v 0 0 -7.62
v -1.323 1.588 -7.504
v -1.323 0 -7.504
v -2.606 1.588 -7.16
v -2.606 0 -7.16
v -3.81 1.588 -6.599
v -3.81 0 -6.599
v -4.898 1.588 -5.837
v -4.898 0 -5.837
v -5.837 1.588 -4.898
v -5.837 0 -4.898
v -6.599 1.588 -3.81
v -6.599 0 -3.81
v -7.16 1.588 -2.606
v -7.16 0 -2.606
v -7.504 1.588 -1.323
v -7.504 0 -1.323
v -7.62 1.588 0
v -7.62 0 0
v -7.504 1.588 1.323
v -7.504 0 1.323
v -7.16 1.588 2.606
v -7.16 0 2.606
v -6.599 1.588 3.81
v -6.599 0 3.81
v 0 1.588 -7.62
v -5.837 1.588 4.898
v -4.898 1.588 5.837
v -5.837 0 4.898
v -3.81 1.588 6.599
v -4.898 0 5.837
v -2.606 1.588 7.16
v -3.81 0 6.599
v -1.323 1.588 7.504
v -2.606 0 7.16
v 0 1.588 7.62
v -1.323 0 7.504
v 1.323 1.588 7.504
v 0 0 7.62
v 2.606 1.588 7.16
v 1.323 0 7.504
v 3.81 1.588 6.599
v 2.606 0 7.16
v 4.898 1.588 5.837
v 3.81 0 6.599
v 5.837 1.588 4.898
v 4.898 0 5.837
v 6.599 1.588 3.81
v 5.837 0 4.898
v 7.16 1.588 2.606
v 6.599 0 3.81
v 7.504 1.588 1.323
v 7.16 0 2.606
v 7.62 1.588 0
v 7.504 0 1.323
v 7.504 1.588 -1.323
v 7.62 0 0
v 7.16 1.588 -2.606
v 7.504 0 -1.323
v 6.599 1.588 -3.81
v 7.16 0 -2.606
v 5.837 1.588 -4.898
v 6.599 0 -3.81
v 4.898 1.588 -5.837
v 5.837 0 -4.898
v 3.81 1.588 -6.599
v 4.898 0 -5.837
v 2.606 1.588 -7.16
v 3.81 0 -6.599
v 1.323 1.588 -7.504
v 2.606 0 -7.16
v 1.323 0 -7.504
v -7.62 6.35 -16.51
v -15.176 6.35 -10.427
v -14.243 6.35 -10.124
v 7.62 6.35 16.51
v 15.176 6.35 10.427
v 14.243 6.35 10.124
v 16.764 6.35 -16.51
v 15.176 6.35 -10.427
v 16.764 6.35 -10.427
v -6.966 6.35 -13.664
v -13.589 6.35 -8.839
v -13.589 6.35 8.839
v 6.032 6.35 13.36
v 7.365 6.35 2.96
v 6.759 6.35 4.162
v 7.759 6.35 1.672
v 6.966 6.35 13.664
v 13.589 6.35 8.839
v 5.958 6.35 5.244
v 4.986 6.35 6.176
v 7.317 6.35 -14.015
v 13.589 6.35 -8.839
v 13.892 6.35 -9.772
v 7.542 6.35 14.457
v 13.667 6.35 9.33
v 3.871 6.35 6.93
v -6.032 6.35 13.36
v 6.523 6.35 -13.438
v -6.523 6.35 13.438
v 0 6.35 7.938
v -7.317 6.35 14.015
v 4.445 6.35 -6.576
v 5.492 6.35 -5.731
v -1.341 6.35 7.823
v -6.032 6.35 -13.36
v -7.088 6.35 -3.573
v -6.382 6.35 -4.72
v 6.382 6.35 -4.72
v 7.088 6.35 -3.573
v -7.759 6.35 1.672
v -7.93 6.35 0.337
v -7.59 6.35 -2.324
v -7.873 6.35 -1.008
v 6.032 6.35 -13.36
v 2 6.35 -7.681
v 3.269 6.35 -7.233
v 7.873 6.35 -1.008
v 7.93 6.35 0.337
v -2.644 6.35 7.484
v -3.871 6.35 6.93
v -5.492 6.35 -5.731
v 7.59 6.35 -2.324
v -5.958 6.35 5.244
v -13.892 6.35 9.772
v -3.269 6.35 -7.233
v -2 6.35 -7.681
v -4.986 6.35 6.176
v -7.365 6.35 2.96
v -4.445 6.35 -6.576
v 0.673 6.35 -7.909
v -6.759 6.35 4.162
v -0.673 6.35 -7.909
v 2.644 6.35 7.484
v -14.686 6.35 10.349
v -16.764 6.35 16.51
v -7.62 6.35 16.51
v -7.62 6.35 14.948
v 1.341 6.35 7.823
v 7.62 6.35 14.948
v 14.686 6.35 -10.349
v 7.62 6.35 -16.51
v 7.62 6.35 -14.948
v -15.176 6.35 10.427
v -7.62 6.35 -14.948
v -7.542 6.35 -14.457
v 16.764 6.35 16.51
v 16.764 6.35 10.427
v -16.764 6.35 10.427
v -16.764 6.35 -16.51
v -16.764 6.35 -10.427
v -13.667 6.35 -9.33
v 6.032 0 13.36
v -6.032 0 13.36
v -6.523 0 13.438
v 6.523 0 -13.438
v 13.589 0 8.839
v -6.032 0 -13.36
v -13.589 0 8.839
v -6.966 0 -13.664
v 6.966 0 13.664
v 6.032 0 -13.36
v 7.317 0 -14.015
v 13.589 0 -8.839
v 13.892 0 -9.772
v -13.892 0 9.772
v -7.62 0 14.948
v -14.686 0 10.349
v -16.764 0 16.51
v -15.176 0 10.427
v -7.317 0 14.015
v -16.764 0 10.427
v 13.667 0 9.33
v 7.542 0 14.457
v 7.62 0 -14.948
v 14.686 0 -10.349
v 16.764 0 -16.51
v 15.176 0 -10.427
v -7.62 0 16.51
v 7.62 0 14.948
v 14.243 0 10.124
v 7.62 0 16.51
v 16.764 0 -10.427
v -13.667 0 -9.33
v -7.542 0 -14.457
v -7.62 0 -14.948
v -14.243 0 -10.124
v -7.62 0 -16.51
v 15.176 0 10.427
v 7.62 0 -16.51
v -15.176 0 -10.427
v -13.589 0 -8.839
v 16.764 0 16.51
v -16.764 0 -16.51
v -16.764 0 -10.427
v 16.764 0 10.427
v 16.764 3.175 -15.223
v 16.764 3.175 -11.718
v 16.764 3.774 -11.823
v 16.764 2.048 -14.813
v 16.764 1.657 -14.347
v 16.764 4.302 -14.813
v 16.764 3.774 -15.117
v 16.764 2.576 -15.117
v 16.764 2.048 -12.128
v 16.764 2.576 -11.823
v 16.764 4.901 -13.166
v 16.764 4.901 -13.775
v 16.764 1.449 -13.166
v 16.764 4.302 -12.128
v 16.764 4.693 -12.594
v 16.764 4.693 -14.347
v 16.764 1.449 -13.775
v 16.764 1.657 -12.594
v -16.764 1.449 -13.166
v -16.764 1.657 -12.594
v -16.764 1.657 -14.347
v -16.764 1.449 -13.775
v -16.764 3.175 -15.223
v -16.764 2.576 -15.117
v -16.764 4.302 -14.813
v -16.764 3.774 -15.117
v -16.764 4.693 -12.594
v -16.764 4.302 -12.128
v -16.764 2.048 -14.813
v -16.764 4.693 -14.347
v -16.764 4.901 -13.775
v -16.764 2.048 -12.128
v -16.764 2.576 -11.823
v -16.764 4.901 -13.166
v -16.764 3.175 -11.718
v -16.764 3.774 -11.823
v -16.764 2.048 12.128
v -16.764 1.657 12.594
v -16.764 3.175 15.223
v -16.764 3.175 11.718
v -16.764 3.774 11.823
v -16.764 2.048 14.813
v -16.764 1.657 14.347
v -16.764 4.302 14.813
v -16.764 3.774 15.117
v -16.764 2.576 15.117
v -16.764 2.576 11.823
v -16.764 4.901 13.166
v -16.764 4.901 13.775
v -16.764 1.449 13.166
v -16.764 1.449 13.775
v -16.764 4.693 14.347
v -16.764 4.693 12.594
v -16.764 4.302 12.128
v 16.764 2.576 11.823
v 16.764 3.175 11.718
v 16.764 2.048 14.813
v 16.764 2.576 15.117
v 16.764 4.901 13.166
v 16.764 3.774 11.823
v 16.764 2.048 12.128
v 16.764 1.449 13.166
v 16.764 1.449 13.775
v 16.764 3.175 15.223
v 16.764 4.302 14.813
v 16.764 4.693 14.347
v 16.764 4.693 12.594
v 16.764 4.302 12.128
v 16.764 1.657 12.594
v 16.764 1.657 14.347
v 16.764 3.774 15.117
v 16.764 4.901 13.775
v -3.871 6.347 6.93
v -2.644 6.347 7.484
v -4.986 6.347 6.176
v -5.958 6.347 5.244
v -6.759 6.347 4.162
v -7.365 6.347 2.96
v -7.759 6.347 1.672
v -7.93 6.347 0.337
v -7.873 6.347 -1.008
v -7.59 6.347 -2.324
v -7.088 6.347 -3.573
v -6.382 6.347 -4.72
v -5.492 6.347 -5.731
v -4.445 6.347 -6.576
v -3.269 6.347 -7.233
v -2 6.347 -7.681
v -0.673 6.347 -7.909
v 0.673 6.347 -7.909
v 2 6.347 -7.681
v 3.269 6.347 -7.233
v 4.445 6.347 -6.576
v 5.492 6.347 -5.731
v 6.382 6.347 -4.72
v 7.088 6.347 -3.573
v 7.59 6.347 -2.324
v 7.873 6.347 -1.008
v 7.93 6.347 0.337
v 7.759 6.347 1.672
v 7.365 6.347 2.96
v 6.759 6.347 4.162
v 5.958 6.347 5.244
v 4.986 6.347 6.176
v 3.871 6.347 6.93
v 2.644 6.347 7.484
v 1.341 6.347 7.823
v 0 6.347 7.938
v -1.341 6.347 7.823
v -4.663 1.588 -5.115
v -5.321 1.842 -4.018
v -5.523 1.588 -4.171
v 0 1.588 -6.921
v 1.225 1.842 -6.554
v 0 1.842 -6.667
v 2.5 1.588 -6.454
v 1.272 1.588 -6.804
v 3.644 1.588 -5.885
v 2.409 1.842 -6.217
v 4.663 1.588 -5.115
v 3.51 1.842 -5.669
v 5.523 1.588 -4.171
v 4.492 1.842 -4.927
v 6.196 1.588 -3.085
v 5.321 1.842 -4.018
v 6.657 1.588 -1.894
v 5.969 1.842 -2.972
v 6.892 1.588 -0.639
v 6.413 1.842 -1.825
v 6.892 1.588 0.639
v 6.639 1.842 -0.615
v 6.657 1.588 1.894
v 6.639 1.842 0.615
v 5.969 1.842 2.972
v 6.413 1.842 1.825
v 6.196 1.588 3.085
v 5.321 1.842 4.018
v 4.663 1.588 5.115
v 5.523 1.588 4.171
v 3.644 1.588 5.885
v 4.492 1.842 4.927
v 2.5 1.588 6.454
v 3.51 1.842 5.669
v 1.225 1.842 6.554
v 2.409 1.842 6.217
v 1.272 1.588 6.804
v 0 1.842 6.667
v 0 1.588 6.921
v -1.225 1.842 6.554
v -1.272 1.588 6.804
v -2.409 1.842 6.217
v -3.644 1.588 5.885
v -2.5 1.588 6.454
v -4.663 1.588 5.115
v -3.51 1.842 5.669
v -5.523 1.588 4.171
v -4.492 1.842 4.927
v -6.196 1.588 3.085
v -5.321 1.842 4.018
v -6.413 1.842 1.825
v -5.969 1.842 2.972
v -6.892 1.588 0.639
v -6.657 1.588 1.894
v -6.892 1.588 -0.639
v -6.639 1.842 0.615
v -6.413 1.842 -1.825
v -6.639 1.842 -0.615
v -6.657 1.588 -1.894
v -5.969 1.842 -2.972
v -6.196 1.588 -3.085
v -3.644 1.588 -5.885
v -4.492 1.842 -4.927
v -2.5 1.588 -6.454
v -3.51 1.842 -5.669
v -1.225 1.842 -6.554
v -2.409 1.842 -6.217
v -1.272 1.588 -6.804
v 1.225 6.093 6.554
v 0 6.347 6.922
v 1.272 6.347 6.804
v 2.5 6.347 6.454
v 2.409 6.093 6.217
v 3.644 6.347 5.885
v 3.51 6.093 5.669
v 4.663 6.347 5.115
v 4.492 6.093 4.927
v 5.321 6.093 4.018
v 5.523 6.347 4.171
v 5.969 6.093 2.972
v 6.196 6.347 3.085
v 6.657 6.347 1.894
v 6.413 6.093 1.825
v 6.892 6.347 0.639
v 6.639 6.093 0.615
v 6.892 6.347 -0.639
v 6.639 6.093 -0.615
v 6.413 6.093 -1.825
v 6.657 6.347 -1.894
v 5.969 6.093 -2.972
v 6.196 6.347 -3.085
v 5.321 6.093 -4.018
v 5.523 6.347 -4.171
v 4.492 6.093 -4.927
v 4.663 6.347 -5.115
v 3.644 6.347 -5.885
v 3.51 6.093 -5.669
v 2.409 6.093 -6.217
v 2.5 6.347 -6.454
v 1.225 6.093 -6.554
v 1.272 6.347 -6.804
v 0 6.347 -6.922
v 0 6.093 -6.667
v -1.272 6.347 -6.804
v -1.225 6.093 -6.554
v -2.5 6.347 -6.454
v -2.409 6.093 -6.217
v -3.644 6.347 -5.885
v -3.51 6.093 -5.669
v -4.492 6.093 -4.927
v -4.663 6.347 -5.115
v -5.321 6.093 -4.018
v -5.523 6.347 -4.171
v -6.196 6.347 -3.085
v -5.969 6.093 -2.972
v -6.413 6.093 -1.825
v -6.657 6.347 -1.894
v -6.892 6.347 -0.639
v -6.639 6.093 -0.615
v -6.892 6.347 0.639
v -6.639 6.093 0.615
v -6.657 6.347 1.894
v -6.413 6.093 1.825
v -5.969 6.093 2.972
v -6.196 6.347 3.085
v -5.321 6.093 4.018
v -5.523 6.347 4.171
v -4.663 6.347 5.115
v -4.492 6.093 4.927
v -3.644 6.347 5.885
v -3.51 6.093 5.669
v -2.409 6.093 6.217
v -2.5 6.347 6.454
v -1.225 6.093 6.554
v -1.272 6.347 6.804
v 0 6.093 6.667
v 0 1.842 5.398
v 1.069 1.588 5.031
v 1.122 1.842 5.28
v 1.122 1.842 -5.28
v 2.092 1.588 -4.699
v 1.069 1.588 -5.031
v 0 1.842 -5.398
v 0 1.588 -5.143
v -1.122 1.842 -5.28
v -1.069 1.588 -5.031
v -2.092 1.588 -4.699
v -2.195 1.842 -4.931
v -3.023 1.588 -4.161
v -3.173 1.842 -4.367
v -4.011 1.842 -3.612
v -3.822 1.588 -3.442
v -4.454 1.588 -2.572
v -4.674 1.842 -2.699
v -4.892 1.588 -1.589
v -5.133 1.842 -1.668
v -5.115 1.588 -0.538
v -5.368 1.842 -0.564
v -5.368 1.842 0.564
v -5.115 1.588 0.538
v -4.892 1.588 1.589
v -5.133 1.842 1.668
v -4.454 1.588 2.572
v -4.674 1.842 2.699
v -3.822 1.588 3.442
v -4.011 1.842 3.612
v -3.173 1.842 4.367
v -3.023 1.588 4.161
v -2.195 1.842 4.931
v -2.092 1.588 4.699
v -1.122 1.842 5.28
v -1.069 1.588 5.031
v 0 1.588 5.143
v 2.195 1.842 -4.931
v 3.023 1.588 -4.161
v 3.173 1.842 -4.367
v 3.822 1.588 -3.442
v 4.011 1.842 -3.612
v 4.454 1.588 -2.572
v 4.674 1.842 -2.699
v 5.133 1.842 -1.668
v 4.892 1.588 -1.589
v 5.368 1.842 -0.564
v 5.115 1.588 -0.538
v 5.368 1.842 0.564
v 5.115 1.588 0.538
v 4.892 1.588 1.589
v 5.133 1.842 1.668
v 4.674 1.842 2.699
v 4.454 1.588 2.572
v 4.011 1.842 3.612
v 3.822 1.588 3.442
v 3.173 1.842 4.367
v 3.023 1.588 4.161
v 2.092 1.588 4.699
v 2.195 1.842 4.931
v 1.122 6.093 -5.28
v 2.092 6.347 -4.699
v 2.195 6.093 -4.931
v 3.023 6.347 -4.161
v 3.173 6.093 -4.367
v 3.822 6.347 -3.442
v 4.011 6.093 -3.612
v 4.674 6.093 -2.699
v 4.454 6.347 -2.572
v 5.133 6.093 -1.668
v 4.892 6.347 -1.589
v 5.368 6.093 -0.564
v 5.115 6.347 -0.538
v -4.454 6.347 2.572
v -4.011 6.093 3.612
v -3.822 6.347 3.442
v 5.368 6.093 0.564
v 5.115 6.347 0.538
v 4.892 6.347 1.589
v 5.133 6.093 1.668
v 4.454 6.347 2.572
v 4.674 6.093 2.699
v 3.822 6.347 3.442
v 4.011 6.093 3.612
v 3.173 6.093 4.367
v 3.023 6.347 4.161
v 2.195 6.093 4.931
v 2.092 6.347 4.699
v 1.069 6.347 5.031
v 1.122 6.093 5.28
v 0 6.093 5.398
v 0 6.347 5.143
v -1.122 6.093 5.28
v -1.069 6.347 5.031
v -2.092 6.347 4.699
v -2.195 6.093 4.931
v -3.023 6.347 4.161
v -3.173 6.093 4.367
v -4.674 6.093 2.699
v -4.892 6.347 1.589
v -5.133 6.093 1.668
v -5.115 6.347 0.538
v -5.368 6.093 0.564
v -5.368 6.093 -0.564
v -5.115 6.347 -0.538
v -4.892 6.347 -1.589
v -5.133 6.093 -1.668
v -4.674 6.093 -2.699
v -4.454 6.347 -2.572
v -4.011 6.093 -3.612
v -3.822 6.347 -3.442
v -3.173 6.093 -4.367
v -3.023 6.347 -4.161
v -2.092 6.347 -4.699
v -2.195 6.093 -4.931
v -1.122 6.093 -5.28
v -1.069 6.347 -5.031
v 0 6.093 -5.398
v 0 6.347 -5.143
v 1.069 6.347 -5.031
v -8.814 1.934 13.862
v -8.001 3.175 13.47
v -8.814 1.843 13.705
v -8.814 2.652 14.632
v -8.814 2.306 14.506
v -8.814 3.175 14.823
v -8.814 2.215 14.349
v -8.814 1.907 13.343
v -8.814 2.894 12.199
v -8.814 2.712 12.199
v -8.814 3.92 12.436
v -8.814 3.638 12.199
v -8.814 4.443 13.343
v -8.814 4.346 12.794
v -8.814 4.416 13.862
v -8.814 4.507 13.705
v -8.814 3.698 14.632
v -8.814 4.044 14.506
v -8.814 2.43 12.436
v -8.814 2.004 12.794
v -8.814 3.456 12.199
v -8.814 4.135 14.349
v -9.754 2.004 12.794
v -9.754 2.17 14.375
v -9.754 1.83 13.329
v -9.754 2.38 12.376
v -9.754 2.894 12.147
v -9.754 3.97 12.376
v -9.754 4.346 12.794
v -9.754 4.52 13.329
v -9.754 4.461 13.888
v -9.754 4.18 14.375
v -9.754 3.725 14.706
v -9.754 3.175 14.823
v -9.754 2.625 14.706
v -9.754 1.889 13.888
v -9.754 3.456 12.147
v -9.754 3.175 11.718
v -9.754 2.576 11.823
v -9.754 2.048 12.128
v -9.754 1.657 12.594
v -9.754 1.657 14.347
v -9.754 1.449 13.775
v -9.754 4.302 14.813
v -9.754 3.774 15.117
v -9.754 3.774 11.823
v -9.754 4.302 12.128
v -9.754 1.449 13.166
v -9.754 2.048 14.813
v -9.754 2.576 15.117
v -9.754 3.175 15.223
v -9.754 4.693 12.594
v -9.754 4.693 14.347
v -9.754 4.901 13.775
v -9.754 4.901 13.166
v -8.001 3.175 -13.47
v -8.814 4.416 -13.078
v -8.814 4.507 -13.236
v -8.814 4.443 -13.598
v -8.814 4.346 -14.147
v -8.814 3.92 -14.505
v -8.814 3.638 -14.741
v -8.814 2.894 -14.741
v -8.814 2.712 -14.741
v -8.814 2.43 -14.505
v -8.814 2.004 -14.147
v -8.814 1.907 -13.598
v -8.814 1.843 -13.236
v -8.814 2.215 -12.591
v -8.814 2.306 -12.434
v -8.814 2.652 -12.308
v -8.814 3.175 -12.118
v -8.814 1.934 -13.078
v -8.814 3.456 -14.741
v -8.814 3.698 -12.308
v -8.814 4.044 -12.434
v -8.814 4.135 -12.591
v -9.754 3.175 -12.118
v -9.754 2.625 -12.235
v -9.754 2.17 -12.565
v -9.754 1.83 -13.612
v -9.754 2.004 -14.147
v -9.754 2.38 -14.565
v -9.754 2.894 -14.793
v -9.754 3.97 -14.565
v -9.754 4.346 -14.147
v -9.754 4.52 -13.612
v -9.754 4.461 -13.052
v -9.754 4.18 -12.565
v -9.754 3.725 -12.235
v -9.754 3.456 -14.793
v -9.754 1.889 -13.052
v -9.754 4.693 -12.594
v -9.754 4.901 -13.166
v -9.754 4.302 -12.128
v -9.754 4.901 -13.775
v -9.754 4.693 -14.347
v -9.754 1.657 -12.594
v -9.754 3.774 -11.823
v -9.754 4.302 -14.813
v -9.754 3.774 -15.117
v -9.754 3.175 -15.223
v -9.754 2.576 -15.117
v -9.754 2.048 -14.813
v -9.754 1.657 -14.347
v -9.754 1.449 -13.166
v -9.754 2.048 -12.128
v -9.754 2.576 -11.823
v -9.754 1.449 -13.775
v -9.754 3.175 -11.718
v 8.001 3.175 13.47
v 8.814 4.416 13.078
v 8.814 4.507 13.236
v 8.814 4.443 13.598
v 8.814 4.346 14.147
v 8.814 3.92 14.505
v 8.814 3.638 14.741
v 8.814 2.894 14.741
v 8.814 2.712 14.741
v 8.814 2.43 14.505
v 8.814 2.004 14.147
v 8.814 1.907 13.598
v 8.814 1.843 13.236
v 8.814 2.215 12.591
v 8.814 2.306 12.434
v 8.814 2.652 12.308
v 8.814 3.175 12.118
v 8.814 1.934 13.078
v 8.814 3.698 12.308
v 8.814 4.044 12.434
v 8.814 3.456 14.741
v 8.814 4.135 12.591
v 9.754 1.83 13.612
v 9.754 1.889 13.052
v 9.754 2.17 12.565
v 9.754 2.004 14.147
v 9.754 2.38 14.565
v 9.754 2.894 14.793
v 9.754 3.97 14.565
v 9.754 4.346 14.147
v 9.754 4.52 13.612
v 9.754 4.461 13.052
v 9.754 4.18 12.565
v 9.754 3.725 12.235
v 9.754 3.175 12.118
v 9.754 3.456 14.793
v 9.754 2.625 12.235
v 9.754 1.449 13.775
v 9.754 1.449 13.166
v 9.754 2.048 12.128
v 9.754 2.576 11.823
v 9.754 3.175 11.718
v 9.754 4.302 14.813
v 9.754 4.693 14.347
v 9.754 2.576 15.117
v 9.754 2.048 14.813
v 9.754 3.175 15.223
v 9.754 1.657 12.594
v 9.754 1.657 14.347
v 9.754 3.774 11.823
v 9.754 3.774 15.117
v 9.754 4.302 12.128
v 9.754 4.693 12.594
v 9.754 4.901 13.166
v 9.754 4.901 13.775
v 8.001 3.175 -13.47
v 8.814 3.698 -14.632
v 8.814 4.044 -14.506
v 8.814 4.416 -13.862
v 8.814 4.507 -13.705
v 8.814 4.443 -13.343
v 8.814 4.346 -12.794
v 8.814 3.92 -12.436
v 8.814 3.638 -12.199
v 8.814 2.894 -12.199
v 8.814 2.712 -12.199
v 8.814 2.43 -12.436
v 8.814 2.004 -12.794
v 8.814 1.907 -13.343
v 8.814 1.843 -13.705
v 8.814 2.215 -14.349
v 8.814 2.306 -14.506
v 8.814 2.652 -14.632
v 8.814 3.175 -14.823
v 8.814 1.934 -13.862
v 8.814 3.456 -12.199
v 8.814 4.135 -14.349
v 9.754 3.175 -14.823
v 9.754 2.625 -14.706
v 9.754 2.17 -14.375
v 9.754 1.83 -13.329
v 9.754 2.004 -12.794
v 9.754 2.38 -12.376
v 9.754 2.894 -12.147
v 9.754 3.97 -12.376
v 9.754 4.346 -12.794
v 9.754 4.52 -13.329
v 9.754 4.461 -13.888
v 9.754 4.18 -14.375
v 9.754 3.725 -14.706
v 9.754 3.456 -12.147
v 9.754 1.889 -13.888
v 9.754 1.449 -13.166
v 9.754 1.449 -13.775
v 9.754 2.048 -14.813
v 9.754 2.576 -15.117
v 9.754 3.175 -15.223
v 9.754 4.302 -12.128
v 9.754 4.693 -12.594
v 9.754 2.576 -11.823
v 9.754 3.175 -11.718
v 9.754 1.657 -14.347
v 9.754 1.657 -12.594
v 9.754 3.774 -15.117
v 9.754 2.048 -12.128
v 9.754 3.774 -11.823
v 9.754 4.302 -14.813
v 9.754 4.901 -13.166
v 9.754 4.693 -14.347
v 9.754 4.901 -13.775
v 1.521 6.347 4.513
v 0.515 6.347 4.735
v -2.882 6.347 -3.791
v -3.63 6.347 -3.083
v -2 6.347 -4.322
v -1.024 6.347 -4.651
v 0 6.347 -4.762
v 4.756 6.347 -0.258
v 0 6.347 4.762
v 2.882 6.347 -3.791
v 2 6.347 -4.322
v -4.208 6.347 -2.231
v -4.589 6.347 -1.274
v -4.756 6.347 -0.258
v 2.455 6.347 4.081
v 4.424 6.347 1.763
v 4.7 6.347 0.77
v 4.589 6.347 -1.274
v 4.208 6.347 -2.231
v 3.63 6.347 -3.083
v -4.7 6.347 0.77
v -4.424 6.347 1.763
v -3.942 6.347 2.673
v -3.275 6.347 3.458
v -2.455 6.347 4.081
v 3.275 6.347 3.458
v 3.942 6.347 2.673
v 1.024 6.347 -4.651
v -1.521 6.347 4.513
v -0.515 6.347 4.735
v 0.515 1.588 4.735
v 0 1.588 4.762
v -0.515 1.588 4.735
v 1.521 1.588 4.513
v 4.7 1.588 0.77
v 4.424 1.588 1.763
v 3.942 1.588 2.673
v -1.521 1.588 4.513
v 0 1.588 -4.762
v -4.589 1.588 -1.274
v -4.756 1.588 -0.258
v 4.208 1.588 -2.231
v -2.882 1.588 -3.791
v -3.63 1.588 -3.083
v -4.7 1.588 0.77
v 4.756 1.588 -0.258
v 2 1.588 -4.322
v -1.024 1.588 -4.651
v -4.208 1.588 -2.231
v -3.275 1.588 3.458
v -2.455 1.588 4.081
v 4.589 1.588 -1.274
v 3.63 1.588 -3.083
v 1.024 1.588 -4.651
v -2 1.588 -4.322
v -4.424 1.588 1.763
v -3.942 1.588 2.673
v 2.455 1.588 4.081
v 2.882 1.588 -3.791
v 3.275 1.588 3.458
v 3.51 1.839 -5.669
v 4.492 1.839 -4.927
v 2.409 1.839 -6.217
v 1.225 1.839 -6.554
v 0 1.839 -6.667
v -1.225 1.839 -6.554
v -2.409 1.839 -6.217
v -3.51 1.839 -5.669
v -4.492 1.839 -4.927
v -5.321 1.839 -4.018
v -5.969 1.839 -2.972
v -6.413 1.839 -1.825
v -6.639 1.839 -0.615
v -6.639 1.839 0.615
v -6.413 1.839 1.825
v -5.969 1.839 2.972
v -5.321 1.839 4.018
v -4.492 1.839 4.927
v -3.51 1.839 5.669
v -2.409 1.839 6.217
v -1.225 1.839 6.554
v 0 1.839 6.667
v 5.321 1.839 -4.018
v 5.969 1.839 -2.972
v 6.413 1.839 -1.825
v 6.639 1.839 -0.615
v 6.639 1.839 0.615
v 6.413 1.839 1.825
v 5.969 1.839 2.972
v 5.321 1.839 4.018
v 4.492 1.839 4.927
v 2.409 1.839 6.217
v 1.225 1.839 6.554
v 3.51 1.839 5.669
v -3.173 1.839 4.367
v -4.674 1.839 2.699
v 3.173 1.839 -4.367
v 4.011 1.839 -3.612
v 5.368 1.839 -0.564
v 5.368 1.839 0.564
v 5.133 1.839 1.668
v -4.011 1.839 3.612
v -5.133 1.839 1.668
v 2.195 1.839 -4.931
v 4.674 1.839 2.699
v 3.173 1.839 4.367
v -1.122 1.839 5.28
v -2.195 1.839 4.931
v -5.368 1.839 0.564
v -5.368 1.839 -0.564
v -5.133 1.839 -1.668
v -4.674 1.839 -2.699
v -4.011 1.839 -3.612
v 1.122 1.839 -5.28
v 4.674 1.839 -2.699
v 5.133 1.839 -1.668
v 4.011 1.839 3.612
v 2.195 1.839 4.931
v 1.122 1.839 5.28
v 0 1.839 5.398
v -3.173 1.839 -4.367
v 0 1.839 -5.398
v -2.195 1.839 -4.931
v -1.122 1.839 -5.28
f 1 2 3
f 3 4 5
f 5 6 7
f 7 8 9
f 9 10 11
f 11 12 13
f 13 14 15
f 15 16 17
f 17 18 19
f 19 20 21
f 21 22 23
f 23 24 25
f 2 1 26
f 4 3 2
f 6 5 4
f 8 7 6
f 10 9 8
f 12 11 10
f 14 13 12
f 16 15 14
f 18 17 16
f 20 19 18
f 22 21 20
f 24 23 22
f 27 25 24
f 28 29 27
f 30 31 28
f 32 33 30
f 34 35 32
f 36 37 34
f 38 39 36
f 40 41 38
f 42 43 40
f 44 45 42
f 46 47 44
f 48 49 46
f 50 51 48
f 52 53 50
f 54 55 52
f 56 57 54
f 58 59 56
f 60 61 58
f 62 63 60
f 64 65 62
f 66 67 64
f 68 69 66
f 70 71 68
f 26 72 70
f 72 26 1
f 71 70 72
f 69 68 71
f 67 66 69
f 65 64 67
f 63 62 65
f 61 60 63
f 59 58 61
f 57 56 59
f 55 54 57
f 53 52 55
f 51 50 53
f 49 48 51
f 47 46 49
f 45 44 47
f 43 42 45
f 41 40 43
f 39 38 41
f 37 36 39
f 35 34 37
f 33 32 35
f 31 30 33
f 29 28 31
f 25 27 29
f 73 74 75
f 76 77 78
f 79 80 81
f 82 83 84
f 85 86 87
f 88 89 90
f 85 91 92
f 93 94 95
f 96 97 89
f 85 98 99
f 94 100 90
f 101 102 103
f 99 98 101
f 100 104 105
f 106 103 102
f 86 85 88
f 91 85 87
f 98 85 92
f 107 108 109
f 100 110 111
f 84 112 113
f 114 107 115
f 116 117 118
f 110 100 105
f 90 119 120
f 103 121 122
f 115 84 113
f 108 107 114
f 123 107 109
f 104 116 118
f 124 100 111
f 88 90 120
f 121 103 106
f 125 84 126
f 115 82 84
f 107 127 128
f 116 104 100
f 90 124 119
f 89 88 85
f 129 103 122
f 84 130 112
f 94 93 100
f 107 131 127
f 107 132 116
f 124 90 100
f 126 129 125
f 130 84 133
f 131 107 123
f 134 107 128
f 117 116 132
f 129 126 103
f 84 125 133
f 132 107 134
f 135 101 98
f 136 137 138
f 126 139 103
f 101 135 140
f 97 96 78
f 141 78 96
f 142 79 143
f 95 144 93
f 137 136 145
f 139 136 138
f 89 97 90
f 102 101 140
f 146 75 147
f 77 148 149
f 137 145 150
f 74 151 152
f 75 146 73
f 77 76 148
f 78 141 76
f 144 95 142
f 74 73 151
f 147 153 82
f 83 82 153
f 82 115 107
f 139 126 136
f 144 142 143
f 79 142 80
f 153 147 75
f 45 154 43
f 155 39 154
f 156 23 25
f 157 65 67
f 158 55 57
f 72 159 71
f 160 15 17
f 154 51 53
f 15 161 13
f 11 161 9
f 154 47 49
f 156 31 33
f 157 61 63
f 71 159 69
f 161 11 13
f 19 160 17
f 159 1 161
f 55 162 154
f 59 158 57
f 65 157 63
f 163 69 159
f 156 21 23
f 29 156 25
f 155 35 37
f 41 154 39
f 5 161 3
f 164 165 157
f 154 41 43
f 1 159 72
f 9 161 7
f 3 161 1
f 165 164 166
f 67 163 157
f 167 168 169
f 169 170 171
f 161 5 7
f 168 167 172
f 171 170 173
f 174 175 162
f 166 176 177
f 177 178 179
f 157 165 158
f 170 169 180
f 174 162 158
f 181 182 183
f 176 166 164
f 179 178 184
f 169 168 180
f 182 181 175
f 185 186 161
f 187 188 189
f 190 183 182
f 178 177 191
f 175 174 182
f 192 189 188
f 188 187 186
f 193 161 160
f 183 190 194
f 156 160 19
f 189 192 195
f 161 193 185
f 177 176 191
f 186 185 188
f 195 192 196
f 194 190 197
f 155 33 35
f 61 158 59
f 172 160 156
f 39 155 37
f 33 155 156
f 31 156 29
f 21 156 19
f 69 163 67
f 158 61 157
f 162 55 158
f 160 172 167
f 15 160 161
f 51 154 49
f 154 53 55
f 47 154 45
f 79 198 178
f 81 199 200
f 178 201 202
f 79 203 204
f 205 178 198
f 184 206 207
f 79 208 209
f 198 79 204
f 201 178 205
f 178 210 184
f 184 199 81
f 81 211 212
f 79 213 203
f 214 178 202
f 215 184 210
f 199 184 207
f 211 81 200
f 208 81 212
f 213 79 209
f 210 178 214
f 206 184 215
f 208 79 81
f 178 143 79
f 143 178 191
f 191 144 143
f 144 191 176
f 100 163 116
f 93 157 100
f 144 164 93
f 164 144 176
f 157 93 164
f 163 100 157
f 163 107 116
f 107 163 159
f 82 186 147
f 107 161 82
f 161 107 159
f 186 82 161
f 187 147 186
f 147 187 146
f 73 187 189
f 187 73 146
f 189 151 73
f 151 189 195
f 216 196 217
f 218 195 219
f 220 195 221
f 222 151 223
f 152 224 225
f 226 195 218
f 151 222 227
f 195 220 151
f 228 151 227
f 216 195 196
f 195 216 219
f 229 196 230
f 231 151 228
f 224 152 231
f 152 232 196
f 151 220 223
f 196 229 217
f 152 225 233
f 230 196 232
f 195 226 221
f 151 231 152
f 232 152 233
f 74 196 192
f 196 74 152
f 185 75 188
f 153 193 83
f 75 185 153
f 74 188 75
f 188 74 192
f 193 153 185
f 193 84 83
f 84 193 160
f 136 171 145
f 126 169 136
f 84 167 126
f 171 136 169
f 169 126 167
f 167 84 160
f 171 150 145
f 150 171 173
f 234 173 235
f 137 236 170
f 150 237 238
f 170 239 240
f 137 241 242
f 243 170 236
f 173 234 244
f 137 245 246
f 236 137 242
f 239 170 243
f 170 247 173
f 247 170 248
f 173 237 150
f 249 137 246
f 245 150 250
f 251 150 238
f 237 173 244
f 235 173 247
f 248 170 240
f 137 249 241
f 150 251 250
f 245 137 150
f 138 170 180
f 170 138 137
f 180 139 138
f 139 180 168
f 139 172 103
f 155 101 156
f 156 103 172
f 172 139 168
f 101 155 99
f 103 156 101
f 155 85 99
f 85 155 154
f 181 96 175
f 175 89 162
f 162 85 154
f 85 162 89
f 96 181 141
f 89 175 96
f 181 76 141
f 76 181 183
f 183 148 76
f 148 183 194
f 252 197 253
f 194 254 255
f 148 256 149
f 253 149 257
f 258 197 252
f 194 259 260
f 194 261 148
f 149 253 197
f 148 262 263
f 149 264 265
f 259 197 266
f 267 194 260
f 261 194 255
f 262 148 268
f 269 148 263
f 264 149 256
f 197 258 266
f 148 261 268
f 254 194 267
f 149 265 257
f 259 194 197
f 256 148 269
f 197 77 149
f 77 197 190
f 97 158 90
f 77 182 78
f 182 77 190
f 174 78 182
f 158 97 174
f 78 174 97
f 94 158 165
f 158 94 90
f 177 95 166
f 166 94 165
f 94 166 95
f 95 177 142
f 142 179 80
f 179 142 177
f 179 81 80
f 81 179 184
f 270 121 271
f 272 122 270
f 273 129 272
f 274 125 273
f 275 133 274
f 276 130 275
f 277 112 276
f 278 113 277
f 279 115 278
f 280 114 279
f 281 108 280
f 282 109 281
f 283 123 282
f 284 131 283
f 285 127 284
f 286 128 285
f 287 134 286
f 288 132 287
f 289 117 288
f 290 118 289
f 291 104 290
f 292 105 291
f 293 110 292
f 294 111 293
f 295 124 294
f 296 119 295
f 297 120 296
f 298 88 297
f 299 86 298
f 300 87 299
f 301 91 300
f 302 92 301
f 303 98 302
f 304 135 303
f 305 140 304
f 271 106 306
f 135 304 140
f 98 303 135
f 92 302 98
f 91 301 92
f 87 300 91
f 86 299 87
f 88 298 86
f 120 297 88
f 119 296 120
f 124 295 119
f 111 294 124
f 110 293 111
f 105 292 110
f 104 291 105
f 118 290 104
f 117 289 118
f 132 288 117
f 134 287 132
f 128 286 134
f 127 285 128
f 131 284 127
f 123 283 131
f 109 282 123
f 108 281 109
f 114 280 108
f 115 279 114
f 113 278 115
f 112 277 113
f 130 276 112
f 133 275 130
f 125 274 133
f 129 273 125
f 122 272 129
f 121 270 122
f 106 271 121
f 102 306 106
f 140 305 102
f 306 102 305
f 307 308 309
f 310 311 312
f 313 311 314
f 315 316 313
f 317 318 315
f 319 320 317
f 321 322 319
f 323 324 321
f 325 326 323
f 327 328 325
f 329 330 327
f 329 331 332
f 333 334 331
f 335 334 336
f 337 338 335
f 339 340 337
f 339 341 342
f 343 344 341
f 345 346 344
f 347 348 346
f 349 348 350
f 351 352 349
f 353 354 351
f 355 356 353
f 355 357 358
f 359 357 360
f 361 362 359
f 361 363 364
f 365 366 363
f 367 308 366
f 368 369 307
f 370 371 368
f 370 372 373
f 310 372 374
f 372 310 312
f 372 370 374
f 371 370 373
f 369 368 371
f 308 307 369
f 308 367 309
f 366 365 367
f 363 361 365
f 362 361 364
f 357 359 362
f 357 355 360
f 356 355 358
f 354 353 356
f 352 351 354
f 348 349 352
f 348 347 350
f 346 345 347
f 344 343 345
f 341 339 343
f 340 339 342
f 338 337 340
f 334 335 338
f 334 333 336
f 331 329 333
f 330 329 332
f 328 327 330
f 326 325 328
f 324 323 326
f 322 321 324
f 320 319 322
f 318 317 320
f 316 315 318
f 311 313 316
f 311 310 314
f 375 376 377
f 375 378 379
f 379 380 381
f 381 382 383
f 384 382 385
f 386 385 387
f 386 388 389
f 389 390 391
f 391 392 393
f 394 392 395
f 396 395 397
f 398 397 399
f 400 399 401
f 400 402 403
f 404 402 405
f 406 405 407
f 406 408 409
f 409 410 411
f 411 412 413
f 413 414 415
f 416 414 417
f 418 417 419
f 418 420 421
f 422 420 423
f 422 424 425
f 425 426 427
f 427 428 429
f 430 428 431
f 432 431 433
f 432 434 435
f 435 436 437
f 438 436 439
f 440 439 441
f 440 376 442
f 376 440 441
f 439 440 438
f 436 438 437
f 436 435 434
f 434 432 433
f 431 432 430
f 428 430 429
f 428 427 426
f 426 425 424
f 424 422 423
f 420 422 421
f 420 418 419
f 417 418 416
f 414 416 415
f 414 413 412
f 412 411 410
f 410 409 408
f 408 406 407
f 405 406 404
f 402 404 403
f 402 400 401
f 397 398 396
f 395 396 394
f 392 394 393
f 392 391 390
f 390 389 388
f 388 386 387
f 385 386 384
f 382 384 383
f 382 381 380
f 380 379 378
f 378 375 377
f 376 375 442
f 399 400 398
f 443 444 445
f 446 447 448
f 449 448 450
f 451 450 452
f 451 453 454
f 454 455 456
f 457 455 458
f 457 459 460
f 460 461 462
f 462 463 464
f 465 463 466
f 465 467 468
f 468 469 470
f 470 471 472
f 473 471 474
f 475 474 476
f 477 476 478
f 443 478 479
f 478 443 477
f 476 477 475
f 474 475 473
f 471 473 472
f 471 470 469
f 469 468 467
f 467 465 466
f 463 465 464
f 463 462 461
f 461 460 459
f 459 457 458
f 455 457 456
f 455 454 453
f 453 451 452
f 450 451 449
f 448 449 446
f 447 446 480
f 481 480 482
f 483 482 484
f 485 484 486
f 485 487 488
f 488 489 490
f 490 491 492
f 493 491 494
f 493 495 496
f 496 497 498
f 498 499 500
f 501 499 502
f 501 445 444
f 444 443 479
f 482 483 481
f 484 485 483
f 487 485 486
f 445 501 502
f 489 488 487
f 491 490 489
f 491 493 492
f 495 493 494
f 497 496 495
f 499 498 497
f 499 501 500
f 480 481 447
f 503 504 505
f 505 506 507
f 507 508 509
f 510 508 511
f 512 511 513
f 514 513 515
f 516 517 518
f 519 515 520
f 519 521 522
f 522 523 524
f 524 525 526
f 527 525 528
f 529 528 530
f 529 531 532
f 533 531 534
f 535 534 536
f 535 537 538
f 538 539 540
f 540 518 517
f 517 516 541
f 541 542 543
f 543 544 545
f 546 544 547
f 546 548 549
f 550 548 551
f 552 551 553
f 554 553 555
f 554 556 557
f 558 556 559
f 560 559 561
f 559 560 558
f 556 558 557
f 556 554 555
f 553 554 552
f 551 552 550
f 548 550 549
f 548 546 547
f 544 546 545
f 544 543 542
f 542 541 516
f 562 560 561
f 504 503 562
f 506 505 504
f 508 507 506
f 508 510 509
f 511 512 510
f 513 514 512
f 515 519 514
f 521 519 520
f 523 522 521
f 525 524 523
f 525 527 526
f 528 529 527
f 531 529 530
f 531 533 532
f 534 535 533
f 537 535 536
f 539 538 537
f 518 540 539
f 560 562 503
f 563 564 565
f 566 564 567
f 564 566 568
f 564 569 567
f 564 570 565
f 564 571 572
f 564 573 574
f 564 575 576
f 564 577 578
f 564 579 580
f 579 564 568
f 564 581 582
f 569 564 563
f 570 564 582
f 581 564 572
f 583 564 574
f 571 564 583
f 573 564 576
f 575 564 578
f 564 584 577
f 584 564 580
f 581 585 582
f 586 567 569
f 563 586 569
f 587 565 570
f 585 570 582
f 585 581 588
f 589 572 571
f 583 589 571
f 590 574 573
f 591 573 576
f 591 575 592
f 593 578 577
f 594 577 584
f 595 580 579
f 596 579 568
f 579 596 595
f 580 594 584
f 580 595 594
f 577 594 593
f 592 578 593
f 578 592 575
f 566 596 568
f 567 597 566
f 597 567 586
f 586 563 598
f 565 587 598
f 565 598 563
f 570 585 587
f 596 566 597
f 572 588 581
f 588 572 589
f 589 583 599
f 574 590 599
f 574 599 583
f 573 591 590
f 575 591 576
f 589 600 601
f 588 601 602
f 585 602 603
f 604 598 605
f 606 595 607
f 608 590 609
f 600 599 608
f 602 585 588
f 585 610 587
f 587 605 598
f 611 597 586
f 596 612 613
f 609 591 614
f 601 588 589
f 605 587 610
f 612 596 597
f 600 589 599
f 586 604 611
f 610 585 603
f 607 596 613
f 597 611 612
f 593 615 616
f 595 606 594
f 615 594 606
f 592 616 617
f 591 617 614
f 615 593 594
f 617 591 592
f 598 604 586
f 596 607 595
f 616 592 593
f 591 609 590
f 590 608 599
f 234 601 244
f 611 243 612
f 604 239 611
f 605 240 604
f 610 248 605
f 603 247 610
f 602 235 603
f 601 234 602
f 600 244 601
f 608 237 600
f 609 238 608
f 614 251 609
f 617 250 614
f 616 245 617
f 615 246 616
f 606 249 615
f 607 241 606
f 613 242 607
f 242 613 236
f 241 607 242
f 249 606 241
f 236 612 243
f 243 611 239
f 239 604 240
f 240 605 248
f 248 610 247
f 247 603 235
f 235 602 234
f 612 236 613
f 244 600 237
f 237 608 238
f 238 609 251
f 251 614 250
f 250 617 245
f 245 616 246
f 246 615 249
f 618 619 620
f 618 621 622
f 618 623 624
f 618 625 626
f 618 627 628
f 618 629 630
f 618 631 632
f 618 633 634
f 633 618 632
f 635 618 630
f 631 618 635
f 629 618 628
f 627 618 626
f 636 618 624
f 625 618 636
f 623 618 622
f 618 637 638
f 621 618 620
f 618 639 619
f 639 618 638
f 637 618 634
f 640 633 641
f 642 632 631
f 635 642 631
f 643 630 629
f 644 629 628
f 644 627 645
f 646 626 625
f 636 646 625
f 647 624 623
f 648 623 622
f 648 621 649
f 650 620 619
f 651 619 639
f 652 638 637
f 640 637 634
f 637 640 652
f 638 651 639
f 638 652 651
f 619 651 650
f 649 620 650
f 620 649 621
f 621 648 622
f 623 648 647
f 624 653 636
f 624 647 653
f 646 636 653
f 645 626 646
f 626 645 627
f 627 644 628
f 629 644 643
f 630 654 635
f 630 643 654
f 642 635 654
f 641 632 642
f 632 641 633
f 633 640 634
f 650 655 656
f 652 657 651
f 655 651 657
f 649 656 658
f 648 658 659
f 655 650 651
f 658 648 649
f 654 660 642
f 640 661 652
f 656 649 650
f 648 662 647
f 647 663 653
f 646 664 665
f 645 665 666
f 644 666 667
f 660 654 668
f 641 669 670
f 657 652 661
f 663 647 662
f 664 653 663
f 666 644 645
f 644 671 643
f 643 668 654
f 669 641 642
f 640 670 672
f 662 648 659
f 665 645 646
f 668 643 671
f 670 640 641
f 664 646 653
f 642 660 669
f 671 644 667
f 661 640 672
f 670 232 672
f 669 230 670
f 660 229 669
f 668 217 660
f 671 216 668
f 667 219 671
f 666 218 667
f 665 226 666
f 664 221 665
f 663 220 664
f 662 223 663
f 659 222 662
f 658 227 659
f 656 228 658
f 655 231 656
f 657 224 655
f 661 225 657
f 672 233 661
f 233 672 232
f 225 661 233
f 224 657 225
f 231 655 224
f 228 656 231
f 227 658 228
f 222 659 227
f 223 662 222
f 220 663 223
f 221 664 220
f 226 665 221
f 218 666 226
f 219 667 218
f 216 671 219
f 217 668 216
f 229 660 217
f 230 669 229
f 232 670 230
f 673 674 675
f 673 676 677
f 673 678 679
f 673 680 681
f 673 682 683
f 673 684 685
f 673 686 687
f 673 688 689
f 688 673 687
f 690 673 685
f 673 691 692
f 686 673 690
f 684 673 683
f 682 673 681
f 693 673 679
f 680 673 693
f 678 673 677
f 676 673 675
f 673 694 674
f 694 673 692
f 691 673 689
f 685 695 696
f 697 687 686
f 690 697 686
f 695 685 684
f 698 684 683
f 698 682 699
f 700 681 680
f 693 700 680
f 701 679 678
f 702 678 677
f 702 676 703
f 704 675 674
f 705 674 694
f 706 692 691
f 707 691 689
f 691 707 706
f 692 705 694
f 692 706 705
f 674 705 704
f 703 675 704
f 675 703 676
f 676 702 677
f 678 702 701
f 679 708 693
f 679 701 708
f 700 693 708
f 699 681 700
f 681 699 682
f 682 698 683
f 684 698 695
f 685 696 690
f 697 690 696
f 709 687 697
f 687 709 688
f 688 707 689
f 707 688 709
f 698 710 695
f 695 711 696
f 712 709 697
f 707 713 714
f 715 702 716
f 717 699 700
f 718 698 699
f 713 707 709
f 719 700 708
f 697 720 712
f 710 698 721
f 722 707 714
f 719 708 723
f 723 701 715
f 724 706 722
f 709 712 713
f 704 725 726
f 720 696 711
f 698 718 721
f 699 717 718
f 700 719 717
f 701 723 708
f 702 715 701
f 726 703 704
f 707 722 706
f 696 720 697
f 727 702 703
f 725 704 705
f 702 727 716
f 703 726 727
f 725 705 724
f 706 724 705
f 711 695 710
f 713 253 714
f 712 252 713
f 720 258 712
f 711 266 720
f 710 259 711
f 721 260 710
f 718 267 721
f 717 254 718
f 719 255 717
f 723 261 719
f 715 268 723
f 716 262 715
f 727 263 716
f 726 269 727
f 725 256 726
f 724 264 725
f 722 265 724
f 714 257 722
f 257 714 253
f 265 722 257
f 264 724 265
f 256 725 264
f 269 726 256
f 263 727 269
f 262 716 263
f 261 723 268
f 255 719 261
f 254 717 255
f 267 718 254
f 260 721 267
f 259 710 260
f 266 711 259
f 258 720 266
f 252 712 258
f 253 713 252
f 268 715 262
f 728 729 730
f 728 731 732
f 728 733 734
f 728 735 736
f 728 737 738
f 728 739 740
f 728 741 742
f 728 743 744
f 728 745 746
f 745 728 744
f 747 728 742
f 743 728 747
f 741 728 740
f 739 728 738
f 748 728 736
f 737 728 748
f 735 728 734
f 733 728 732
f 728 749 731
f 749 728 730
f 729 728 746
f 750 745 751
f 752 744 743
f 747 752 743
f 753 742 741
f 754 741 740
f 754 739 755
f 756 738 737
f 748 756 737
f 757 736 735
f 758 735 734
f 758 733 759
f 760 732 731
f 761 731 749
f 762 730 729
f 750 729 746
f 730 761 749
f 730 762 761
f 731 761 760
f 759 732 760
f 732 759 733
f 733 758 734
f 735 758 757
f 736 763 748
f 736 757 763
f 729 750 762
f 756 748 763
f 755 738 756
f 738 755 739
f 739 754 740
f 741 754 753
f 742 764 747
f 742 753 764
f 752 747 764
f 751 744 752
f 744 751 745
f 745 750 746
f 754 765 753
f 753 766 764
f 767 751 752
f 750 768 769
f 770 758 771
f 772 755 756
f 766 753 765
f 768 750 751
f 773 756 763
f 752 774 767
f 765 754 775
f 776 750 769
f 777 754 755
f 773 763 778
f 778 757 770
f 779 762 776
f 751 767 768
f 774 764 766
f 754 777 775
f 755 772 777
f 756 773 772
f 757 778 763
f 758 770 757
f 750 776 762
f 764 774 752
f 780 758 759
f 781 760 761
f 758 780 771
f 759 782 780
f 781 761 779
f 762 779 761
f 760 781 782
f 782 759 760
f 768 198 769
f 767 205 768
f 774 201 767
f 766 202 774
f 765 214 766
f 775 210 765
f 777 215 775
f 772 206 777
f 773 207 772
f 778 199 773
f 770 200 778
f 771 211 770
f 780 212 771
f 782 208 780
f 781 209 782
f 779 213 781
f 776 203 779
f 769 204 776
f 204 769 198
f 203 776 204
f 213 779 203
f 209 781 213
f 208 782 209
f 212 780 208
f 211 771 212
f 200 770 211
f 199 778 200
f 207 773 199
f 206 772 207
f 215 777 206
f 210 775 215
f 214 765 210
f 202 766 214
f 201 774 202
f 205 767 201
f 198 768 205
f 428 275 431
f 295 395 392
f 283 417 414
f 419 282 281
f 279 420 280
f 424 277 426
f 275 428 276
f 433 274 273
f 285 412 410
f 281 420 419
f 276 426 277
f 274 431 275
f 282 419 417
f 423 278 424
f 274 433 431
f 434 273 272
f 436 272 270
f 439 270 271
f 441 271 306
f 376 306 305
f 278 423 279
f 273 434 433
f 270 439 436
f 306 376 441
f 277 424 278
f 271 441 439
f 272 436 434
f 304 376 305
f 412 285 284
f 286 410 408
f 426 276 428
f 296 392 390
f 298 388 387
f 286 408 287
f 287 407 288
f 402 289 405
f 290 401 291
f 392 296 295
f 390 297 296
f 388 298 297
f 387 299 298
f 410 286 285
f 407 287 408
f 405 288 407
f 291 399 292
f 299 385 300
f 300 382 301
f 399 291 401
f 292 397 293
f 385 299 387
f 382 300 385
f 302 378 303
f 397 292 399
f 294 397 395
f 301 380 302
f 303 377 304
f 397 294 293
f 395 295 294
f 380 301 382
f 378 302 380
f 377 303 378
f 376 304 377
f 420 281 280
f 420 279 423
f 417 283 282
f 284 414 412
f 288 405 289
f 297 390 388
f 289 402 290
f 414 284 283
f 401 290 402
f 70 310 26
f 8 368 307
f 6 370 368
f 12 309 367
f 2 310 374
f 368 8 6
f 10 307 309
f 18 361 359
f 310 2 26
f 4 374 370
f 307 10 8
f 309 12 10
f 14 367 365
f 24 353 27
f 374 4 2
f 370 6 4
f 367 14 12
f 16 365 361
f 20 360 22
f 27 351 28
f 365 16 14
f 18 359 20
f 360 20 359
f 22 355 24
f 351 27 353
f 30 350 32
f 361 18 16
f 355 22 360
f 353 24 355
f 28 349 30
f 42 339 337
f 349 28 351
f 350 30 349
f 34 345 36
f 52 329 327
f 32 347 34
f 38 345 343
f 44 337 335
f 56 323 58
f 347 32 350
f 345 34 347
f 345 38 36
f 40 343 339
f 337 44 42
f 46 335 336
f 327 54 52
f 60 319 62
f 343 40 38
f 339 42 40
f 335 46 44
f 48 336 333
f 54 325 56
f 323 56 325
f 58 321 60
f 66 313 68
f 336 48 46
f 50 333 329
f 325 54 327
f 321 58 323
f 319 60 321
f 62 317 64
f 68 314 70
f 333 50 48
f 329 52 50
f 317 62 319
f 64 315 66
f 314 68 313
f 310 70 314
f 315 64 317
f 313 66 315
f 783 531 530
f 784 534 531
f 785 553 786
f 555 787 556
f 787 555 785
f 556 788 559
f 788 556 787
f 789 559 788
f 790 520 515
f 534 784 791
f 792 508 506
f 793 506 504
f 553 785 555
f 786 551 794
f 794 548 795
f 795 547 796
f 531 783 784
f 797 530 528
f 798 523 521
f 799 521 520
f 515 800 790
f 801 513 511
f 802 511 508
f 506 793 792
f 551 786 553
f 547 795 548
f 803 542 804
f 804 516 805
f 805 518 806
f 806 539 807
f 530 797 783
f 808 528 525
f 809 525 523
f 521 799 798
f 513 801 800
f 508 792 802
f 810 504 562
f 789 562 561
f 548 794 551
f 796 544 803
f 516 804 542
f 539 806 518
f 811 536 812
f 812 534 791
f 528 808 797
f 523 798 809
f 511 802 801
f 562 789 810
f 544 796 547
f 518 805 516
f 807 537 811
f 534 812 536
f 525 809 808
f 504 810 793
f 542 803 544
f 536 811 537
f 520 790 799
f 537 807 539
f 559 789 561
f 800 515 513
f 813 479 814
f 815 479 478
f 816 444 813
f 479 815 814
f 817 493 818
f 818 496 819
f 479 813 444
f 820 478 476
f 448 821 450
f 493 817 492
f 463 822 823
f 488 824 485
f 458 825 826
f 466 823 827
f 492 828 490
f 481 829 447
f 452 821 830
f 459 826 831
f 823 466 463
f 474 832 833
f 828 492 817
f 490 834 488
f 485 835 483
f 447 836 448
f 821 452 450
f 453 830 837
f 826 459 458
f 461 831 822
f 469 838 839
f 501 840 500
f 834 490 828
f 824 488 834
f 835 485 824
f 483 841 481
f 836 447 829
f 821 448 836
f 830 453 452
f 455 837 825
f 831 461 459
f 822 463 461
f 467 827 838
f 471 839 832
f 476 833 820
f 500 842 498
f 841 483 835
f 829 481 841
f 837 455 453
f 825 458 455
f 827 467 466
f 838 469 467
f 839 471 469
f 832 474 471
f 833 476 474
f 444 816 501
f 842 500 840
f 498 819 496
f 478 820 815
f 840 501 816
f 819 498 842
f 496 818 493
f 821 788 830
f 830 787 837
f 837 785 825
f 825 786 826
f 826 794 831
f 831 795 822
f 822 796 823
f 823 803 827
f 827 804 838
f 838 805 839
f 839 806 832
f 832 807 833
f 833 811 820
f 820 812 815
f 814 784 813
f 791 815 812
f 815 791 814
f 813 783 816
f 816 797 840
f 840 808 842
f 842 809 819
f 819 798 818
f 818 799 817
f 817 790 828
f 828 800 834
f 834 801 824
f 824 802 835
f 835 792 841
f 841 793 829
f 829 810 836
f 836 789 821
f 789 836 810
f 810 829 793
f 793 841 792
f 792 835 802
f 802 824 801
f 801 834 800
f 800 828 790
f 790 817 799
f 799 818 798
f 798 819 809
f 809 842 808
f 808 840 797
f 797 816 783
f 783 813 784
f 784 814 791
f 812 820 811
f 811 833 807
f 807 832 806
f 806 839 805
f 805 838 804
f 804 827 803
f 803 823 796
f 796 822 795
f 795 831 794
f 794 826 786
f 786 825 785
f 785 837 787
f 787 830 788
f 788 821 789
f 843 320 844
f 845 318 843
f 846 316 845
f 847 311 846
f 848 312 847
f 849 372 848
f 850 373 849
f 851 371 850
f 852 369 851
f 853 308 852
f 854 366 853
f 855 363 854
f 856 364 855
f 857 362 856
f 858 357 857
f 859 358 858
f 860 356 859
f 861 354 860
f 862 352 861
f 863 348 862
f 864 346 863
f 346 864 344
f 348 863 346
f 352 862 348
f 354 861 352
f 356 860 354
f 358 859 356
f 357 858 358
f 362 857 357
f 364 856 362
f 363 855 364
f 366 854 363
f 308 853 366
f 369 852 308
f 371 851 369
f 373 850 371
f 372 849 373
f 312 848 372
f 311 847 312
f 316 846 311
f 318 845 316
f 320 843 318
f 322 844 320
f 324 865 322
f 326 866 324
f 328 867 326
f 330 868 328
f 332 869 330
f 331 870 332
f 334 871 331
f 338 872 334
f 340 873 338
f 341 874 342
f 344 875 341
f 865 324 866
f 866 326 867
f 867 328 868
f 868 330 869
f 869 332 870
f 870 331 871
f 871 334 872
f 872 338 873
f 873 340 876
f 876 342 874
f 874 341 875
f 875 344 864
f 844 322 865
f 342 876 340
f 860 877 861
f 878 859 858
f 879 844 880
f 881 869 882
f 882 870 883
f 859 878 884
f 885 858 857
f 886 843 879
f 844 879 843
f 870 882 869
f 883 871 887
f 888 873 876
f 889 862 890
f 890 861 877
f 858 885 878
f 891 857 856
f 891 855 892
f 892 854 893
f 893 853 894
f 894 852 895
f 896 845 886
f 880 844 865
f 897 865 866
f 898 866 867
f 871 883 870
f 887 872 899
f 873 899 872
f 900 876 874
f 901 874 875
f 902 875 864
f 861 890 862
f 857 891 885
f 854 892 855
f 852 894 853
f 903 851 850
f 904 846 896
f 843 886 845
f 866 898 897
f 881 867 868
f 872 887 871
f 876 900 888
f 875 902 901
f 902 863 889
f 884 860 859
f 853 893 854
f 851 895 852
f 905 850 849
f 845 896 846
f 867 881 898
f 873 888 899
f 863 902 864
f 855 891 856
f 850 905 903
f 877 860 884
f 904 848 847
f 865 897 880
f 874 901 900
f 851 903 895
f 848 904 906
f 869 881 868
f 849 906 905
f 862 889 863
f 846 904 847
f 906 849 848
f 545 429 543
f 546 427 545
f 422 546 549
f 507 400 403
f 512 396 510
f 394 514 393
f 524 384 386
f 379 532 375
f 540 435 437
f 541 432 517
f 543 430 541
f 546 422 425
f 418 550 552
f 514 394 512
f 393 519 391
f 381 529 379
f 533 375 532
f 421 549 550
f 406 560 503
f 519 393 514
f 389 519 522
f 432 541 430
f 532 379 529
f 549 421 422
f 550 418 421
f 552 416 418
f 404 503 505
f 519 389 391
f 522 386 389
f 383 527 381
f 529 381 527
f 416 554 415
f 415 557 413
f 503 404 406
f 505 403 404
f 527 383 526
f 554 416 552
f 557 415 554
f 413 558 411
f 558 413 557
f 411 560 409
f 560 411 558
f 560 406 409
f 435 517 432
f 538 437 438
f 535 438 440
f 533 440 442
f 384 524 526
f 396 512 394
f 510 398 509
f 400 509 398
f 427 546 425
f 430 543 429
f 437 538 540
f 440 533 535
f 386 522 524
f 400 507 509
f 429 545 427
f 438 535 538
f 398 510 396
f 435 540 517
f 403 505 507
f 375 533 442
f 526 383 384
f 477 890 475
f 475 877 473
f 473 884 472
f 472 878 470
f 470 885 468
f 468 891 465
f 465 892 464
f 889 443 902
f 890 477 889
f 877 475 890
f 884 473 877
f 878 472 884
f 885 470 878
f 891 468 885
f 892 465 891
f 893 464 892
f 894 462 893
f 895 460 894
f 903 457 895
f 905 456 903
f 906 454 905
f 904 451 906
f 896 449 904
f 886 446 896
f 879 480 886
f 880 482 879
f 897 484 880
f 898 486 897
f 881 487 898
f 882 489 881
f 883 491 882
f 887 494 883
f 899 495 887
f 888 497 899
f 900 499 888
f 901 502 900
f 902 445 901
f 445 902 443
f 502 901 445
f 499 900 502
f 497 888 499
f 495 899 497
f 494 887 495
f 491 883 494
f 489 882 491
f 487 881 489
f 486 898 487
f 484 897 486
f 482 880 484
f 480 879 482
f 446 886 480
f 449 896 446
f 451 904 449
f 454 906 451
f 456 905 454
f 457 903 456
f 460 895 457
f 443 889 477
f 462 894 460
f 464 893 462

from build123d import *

# Parameters (mm, degrees)
SKETCH1_R                      = 7.62
BOSS_EXTRUDE1_DEPTH            = 6.35
SKETCH2_R                      = 7.9375
CUT_EXTRUDE1_DEPTH             = 4.7625
SKETCH3_R                      = 7.9375
SKETCH3_R_2                    = 6.6675
BOSS_EXTRUDE2_DEPTH            = 4.75996
CHAMFER1_SIZE                  = 0.254
SKETCH4_R                      = 5.3975
SKETCH4_R_2                    = 4.7625
BOSS_EXTRUDE3_DEPTH            = 4.75996
CHAMFER2_SIZE                  = 0.254
SKETCH5_R                      = 6.6675
SKETCH5_R_2                    = 5.3975
BOSS_EXTRUDE4_DEPTH            = 4.2545
F_6_32_TAPPED_HOLE1_AT_2_COUNT = 2
F_6_32_TAPPED_HOLE1_AT_2_PITCH = 26.940768363


with BuildPart() as part:
    # Sketch1 → Boss-Extrude1 (new body)
    with BuildSketch(Plane(origin=(0, 0, 0), x_dir=(1, 0, 0), z_dir=(0, 1, 0))):
        with BuildLine():
            Line((-16.764, -16.51), (-7.62, -16.51))
            Line((-7.62, -16.51), (-7.62, -14.9479))
            ThreePointArc((-7.62, -14.9479), (-7.155032015, -13.825367985), (-6.0325, -13.3604))
            Line((-6.0325, -13.3604), (6.0325, -13.3604))
            ThreePointArc((6.0325, -13.3604), (7.155032015, -13.825367985), (7.62, -14.9479))
            Line((7.62, -14.9479), (7.62, -16.51))
            Line((7.62, -16.51), (16.764, -16.51))
            Line((16.764, -16.51), (16.764, -10.4267))
            Line((16.764, -10.4267), (15.1765, -10.4267))
            ThreePointArc((15.1765, -10.4267), (14.053967985, -9.961732015), (13.589, -8.8392))
            Line((13.589, -8.8392), (13.589, 8.8392))
            ThreePointArc((13.589, 8.8392), (14.053967985, 9.961732015), (15.1765, 10.4267))
            Line((15.1765, 10.4267), (16.764, 10.4267))
            Line((16.764, 10.4267), (16.764, 16.51))
            Line((16.764, 16.51), (7.62, 16.51))
            Line((7.62, 16.51), (7.62, 14.9479))
            ThreePointArc((7.62, 14.9479), (7.155032015, 13.825367985), (6.0325, 13.3604))
            Line((6.0325, 13.3604), (-6.0325, 13.3604))
            ThreePointArc((-6.0325, 13.3604), (-7.155032015, 13.825367985), (-7.62, 14.9479))
            Line((-7.62, 14.9479), (-7.62, 16.51))
            Line((-7.62, 16.51), (-16.764, 16.51))
            Line((-16.764, 16.51), (-16.764, 10.4267))
            Line((-16.764, 10.4267), (-15.1765, 10.4267))
            ThreePointArc((-15.1765, 10.4267), (-14.053967985, 9.961732015), (-13.589, 8.8392))
            Line((-13.589, 8.8392), (-13.589, -8.8392))
            ThreePointArc((-13.589, -8.8392), (-14.053967985, -9.961732015), (-15.1765, -10.4267))
            Line((-15.1765, -10.4267), (-16.764, -10.4267))
            Line((-16.764, -10.4267), (-16.764, -16.51))
        make_face()
        Circle(SKETCH1_R, mode=Mode.SUBTRACT)
    extrude(amount=BOSS_EXTRUDE1_DEPTH)

    # Sketch2 → Cut-Extrude1 (cut)
    with BuildSketch(Plane(origin=(0, 6.35, 0), x_dir=(1, 0, 0), z_dir=(0, 1, 0))):
        Circle(SKETCH2_R)
    extrude(amount=-CUT_EXTRUDE1_DEPTH, mode=Mode.SUBTRACT)

    # Sketch3 → Boss-Extrude2 (add)
    with BuildSketch(Plane(origin=(0, 1.5875, 0), x_dir=(-1, 0, 0), z_dir=(0, 1, 0))):
        Circle(SKETCH3_R)
        Circle(SKETCH3_R_2, mode=Mode.SUBTRACT)
    extrude(amount=BOSS_EXTRUDE2_DEPTH)

    # Chamfer1
    chamfer1_edges = [part.edges().sort_by_distance(p)[0] for p in [
        (6.6675, 1.5875, 0),
        (6.6675, 6.34746, 0),
    ]]
    chamfer(chamfer1_edges, length=CHAMFER1_SIZE)



with BuildPart() as body_2:
    # Sketch4 → Boss-Extrude3 (new body)
    with BuildSketch(Plane(origin=(0, 1.5875, 0), x_dir=(-1, 0, 0), z_dir=(0, 1, 0))):
        Circle(SKETCH4_R)
        Circle(SKETCH4_R_2, mode=Mode.SUBTRACT)
    extrude(amount=BOSS_EXTRUDE3_DEPTH)

    # Chamfer2
    chamfer2_edges = [body_2.edges().sort_by_distance(p)[0] for p in [
        (5.3975, 1.5875, 0),
        (5.3975, 6.34746, 0),
    ]]
    chamfer(chamfer2_edges, length=CHAMFER2_SIZE)


with BuildPart() as part_1:
    add(part.part)

    add(body_2.part)  # Boss-Extrude4 merges body 2
    # Sketch5 → Boss-Extrude4 (add)
    with BuildSketch(Plane(origin=(0, 6.09346, 0), x_dir=(-1, 0, 0), z_dir=(0, 1, 0))):
        Circle(SKETCH5_R)
        Circle(SKETCH5_R_2, mode=Mode.SUBTRACT)
    extrude(amount=-BOSS_EXTRUDE4_DEPTH)

    # Sketch8 → #6-32 Tapped Hole1 (revolve, cut)
    with BuildSketch(Plane(origin=(-16.764, 3.175, -13.470384182), x_dir=(0, 0, 1), z_dir=(0, 1, 0))):
        Polygon((0, 0), (0, 8.76289403), (1.35255, 7.9502), (1.35255, 7.0104), (1.7526, 7.0104), (1.7526, 0), align=None)
    f_6_32_tapped_hole1 = revolve(axis=Axis((-23.114, 3.175, -13.470384182), (1, 0, 0)), mode=Mode.SUBTRACT)

    # #6-32 Tapped Hole1 at 2: #6-32 Tapped Hole1 ×2
    with Locations(*[(0, 0, i * F_6_32_TAPPED_HOLE1_AT_2_PITCH) for i in range(1, F_6_32_TAPPED_HOLE1_AT_2_COUNT)]):
        add(f_6_32_tapped_hole1, mode=Mode.SUBTRACT)

    # Mirror1: #6-32 Tapped Hole1 across plane
    add(f_6_32_tapped_hole1.mirror(Plane(origin=(0, 0, 0), x_dir=(0, 0, 1), z_dir=(1, 0, 0))), mode=Mode.SUBTRACT)

    # Mirror1 copy 1 sketch → Mirror1 copy 1 (revolve, cut)
    with BuildSketch(Plane(origin=(16.764, 3.175, 13.470384182), x_dir=(0, 0, 1), z_dir=(0, 1, 0))):
        Polygon((0, 0), (0, -8.76289403), (1.35255, -7.9502), (1.35255, -7.0104), (1.7526, -7.0104), (1.7526, 0), align=None)
    revolve(axis=Axis((23.114, 3.175, 13.470384182), (1, 0, 0)), mode=Mode.SUBTRACT)


solid = part_1.part
